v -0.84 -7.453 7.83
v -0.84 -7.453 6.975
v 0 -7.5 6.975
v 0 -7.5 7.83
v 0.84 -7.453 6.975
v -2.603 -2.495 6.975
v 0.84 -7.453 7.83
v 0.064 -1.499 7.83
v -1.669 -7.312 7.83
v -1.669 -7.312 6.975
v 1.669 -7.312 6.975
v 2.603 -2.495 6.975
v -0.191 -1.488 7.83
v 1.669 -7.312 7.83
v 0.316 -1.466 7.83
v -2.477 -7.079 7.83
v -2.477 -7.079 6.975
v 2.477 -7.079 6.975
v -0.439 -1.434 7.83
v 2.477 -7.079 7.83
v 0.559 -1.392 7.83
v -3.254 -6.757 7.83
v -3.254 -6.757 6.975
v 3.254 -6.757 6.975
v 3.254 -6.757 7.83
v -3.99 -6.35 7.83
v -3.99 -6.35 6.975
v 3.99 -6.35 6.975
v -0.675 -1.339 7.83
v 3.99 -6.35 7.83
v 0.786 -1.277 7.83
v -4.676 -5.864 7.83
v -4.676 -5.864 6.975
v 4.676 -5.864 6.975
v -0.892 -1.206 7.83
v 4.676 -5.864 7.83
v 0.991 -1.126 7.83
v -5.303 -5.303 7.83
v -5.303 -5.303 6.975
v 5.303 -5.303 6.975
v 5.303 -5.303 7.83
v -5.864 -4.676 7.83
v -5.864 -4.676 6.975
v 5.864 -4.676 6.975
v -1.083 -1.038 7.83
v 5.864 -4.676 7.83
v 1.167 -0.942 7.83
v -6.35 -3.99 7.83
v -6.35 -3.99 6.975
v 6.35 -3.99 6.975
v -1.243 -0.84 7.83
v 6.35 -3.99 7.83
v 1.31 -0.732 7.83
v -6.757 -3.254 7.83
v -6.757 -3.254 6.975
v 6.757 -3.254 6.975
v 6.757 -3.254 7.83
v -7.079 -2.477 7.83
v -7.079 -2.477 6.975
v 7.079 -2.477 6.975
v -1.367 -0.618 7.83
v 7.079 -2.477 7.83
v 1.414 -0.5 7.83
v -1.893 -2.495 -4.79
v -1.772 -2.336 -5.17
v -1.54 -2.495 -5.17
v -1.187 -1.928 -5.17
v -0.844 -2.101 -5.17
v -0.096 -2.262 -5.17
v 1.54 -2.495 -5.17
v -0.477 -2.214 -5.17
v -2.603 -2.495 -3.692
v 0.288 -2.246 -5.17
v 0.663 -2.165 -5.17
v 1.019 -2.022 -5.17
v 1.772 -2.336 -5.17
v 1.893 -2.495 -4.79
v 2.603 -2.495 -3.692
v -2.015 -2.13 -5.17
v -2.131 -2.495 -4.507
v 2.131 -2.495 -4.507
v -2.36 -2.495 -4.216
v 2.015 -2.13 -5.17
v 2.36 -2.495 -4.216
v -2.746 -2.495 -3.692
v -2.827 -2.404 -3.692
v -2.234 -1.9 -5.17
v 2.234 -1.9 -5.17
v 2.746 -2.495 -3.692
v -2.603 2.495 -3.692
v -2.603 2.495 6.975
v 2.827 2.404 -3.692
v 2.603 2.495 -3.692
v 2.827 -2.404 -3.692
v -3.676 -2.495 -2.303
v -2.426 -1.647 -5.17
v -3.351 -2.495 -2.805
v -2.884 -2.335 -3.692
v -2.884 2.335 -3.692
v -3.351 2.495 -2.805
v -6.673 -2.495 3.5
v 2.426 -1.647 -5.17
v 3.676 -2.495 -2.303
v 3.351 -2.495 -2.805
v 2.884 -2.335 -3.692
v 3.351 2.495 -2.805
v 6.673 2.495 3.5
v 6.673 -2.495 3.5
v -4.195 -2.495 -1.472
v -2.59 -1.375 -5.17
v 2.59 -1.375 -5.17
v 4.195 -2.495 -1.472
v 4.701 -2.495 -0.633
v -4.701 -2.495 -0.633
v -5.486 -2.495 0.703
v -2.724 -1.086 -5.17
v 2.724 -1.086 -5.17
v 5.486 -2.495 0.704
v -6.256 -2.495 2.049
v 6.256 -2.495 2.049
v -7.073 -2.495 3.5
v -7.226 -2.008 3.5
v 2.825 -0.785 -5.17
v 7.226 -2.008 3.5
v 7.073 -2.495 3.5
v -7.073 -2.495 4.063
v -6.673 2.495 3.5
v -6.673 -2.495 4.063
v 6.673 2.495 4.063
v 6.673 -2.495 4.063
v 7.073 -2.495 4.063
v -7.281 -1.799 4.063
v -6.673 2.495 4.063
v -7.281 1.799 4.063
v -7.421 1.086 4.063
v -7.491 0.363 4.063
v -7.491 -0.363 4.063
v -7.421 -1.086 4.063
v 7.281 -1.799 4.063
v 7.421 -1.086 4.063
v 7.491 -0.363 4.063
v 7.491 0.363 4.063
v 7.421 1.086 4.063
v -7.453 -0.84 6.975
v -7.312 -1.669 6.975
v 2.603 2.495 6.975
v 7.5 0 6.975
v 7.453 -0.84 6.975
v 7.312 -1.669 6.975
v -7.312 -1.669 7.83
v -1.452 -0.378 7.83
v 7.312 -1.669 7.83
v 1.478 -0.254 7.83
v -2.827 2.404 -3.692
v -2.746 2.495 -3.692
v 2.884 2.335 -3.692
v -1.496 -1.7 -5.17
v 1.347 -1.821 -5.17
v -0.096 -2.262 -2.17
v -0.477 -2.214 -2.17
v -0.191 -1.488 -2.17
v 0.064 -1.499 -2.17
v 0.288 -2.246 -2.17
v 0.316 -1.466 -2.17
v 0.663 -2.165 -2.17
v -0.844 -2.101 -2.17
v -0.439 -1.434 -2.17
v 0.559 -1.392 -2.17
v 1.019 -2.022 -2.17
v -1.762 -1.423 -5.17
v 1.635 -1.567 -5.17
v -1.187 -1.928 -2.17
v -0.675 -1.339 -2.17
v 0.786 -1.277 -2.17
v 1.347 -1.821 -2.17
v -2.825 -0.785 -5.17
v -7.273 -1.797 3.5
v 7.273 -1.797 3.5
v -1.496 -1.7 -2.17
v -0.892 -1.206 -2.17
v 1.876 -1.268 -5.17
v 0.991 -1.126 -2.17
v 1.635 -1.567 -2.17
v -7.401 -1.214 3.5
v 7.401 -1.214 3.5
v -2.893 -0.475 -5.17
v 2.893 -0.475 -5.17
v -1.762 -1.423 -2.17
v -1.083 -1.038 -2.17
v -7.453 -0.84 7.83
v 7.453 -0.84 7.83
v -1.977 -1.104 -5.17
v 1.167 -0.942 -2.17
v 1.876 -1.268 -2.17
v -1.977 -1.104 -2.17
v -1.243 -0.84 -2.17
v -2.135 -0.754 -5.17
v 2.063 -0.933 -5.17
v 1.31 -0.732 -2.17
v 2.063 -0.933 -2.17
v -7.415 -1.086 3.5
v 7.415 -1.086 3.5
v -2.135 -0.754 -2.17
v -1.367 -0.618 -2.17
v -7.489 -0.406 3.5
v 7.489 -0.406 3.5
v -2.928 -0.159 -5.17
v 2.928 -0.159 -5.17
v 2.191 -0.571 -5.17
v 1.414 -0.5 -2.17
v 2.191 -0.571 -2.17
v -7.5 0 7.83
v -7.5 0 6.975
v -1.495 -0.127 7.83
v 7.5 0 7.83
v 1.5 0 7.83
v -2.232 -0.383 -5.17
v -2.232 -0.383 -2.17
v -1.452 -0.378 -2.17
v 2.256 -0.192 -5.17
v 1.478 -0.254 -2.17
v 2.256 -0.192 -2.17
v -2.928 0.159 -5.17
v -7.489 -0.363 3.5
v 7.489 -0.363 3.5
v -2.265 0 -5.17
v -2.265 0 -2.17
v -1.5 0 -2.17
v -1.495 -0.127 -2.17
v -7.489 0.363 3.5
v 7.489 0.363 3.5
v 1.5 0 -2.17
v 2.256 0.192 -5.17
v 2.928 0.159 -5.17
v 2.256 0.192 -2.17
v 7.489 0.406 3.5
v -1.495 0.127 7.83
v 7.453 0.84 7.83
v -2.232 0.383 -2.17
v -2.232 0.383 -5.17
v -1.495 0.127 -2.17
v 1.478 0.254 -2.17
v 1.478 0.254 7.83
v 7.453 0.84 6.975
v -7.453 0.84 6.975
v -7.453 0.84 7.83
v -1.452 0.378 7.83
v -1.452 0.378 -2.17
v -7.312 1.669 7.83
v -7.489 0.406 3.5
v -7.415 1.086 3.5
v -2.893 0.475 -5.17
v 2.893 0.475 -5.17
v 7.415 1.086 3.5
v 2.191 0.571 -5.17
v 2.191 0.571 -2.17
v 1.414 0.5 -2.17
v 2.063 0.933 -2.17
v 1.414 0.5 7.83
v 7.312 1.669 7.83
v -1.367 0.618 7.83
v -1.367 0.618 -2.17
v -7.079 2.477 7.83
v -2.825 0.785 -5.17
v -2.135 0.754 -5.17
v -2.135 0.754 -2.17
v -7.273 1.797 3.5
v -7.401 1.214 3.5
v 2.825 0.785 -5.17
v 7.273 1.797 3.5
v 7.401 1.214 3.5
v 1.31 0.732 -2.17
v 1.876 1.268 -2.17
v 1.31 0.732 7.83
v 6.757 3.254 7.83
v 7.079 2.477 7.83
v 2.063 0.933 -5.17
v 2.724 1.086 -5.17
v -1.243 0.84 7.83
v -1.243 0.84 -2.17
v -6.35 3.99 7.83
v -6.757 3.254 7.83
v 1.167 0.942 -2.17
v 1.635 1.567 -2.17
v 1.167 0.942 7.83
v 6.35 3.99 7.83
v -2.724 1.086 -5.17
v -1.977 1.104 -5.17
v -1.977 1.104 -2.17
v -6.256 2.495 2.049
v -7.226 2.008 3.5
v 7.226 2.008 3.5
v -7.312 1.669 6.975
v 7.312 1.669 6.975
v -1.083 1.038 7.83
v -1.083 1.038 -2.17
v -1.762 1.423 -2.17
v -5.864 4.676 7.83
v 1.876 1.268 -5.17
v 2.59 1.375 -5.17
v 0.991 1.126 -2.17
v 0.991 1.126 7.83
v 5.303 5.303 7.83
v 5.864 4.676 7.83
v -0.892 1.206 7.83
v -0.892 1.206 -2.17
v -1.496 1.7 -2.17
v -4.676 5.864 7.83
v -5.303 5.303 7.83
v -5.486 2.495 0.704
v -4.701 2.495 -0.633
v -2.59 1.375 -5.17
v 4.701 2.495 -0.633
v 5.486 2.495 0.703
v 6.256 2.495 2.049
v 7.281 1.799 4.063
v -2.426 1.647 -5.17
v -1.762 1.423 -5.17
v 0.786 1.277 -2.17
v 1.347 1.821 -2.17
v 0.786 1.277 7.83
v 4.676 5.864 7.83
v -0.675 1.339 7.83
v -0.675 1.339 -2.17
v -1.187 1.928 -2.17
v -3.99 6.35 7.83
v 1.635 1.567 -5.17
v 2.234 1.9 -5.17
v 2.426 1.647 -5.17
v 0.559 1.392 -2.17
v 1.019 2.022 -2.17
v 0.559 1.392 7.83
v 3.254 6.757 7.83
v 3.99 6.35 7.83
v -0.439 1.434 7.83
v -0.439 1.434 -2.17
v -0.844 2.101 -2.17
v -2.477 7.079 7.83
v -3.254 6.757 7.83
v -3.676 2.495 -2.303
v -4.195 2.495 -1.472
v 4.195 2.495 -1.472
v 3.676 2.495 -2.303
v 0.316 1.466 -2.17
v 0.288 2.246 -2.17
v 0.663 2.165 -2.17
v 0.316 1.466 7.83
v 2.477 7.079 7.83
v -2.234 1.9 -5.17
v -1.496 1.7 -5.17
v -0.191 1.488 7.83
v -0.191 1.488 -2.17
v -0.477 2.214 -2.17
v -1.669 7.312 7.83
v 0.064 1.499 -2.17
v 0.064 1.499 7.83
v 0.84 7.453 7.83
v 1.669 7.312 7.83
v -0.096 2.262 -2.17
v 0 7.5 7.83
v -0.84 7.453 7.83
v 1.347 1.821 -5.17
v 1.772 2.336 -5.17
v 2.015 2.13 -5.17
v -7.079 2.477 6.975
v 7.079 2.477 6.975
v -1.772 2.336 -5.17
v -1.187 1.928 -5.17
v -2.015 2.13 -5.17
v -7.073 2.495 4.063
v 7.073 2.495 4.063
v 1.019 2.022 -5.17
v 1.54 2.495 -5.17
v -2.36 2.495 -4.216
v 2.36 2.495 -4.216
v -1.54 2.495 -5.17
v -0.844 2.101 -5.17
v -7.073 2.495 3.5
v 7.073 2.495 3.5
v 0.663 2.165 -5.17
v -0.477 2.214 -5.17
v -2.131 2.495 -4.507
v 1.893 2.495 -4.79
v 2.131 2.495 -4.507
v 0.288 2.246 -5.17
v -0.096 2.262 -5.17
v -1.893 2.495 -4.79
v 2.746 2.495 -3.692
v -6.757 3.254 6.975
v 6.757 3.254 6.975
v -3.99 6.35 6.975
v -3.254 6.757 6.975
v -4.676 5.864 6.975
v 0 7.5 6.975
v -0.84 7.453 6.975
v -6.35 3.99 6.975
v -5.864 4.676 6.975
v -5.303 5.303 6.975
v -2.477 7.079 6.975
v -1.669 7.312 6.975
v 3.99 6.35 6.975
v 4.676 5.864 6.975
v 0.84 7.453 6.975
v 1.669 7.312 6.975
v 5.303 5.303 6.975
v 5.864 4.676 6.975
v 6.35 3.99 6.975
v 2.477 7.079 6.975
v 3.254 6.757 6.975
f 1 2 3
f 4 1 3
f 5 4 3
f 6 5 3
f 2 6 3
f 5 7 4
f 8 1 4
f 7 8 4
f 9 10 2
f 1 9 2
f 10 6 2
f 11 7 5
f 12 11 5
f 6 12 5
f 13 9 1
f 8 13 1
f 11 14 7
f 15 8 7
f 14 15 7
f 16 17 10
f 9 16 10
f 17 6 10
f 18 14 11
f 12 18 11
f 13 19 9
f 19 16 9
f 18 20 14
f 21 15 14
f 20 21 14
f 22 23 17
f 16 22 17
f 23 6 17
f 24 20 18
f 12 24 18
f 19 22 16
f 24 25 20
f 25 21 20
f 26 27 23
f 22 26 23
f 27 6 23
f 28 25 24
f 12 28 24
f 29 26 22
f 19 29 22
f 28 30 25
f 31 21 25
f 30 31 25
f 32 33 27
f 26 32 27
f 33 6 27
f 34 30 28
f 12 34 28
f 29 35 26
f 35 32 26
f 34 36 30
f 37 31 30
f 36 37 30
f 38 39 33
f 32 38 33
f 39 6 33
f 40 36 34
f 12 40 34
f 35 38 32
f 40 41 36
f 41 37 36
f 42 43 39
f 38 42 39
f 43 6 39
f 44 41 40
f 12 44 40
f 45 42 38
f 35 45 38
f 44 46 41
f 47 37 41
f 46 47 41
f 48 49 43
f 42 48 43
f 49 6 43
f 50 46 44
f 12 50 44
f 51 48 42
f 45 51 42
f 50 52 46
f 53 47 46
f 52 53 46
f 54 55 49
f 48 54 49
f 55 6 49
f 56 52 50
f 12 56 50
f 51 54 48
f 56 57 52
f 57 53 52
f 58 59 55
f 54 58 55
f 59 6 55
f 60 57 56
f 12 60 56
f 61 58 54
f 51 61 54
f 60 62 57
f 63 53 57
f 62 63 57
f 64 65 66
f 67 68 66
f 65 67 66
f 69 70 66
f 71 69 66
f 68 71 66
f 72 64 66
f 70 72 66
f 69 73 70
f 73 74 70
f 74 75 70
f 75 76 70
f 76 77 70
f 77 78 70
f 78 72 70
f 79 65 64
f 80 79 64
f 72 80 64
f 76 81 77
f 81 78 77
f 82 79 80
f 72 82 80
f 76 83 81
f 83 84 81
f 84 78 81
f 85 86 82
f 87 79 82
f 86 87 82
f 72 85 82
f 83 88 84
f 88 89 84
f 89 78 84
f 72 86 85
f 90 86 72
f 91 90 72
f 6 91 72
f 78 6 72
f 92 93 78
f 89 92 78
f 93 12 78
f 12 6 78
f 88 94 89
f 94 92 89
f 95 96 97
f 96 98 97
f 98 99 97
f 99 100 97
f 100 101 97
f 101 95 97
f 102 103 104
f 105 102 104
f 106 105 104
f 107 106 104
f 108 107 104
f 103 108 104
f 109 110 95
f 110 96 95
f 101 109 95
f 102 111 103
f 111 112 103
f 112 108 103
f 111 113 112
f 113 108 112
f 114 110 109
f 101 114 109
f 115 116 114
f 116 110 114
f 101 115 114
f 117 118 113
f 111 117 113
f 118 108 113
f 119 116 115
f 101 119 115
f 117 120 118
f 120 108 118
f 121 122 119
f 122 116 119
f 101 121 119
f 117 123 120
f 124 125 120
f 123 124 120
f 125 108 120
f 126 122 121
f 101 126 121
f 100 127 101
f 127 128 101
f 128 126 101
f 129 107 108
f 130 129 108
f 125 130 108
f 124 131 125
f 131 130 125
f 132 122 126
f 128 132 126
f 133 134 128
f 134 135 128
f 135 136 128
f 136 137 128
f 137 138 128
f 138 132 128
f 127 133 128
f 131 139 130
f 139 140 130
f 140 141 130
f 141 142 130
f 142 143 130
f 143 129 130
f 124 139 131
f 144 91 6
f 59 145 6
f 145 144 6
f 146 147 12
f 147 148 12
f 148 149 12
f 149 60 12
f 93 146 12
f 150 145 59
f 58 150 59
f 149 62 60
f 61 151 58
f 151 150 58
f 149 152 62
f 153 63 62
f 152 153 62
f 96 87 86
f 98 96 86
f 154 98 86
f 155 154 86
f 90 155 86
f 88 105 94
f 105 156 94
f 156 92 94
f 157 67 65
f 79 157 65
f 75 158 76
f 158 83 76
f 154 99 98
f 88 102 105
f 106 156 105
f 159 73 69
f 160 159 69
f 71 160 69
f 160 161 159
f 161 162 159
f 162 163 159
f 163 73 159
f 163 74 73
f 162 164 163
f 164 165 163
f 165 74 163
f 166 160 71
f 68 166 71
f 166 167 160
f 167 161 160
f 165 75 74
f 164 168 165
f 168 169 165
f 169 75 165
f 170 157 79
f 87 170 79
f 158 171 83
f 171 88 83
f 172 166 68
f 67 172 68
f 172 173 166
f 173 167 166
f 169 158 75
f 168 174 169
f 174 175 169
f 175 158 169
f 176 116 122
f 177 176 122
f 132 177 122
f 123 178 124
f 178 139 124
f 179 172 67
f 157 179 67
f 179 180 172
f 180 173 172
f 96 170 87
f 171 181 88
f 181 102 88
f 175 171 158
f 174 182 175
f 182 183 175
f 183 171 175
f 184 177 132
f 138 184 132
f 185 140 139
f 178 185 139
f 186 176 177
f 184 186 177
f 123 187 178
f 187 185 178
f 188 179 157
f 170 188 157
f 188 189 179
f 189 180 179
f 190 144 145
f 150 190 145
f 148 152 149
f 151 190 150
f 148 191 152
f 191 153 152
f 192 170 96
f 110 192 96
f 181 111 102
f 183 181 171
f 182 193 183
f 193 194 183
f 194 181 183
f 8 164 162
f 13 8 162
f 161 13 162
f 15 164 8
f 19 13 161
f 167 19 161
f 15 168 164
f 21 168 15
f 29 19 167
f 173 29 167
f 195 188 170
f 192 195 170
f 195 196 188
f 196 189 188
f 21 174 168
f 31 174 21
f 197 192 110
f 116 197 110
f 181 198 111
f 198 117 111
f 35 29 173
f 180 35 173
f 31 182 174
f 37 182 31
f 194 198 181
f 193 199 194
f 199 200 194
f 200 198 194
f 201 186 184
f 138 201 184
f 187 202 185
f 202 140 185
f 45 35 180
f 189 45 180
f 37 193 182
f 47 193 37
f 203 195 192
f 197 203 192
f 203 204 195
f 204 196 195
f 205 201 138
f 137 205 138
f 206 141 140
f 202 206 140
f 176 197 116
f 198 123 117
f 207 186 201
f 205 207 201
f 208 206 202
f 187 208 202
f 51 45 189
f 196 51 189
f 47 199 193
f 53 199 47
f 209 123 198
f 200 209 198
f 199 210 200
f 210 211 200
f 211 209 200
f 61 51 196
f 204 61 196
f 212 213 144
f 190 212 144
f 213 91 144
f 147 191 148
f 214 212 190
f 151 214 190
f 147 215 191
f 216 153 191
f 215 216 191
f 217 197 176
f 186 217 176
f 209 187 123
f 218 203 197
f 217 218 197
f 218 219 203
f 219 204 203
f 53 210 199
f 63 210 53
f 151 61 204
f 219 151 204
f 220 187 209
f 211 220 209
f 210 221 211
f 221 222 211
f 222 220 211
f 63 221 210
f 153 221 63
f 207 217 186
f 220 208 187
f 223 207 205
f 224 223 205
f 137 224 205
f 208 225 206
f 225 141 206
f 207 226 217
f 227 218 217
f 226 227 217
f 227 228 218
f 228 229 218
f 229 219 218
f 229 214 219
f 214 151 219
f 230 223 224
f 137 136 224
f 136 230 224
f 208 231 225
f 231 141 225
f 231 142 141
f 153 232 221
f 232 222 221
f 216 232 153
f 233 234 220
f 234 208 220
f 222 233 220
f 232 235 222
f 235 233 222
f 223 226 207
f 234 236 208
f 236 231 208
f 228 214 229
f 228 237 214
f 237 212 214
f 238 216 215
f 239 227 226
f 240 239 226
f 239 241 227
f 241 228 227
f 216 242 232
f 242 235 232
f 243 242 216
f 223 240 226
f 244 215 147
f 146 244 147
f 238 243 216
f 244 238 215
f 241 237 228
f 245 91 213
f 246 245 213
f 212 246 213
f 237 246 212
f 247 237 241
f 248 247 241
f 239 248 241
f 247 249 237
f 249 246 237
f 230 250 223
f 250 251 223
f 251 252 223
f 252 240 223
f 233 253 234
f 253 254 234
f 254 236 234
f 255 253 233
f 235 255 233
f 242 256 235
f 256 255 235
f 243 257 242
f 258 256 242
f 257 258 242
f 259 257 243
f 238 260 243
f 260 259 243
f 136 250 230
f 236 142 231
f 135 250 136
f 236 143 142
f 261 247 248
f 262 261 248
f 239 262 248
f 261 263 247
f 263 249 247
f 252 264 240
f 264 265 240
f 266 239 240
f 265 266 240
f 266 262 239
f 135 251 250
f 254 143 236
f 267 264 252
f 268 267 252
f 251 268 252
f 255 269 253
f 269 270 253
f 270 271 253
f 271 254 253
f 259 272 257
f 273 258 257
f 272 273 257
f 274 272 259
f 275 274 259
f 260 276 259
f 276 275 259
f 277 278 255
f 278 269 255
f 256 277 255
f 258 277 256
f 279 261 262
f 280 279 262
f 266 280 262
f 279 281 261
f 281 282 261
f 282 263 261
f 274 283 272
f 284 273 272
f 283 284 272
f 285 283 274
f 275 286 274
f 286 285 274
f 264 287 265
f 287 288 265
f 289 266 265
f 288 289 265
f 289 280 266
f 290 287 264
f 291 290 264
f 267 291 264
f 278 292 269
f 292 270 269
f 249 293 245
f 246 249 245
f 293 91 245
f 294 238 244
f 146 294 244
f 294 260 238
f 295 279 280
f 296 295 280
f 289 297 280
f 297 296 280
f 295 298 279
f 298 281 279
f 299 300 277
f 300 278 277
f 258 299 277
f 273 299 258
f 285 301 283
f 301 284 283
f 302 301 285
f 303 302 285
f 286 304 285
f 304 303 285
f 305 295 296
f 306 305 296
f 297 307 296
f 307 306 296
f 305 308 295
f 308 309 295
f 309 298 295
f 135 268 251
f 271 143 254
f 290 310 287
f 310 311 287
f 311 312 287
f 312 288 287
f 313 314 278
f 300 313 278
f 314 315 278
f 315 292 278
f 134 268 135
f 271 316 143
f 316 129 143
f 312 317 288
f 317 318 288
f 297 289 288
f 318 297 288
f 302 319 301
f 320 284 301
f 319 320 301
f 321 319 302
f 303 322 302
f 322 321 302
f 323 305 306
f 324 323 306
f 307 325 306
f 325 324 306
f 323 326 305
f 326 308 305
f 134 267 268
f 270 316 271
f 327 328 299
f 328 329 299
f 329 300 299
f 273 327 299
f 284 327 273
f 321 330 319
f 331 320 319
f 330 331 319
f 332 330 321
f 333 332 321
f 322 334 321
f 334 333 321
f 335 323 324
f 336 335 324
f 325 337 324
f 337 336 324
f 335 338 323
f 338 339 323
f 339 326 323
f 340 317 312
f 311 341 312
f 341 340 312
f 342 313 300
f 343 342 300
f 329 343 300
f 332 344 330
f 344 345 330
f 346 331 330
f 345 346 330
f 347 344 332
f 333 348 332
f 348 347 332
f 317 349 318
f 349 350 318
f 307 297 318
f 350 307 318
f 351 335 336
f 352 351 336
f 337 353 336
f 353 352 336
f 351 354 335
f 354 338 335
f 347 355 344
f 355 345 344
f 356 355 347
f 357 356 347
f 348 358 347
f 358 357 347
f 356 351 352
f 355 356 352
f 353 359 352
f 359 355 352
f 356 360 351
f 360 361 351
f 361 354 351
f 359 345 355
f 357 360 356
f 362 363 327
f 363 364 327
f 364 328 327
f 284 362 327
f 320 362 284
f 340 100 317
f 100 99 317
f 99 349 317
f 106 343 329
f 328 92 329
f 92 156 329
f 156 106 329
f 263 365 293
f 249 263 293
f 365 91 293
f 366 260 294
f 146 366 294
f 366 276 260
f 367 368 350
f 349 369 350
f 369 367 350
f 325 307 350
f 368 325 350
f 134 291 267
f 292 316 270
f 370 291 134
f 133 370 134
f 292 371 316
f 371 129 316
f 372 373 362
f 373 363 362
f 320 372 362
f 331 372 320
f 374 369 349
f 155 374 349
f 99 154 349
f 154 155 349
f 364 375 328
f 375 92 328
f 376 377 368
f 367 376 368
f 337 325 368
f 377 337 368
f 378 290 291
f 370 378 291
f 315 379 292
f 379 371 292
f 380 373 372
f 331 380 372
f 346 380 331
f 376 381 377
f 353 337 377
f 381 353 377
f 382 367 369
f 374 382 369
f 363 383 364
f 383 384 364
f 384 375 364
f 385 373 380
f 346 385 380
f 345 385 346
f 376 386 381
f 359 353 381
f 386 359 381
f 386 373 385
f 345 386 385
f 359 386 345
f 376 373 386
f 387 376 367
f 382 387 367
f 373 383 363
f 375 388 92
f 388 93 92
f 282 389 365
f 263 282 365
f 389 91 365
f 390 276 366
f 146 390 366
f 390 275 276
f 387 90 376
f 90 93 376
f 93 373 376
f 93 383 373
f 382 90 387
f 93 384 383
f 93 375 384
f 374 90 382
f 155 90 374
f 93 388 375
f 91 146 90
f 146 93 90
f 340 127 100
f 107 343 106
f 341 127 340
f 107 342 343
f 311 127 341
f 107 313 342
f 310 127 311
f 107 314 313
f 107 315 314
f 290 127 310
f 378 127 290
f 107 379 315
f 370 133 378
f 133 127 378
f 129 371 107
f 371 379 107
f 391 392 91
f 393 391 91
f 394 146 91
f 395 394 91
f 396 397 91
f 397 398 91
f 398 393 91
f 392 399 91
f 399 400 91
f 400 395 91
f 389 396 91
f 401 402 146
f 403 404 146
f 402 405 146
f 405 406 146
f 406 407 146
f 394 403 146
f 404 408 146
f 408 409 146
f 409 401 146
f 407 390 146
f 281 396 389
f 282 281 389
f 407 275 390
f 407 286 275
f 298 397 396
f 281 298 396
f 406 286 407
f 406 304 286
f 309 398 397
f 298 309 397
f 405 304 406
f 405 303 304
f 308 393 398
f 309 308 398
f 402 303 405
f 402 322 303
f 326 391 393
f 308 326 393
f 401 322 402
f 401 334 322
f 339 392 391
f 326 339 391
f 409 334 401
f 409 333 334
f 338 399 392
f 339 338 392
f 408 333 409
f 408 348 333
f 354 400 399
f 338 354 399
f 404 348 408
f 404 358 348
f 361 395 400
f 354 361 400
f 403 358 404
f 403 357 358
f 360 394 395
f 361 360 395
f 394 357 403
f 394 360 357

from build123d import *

# Parameters (mm, degrees)
CUT_EXTRUDE1_DEPTH      = 8.5
CUT_EXTRUDE1_DEPTH_BACK = 8.5
CUT_EXTRUDE3_DEPTH      = 8.5
CUT_EXTRUDE3_DEPTH_BACK = 8.5
CUT_EXTRUDE4_DEPTH      = 8.5
CUT_EXTRUDE4_DEPTH_BACK = 8.5
SKETCH6_R               = 1.5
CUT_EXTRUDE5_DEPTH      = 8.830238334
CUT_EXTRUDE5_DEPTH_BACK = 6.169761666
SKETCH8_R               = 2.264503928
CUT_EXTRUDE6_DEPTH      = 3


with BuildPart() as part:
    # Sketch2 → Revolve1 (revolve)
    with BuildSketch(Plane(origin=(0, 0, 0), x_dir=(1, 0, 0), z_dir=(0, 1, 0))):
        Polygon((0, 5.169761666), (-2.93214923, 5.169761666), (-7.5, -3.499678513), (-7.5, -7.830238334), (0, -7.830238334), align=None)
    revolve(axis=Axis((0, 0, 7.830238334), (0, 0, -1)))

    # Sketch3 → Cut-Extrude1 (cut, two sides)
    with BuildSketch(Plane(origin=(0, 0, 0), x_dir=(1, 0, 0), z_dir=(0, 1, 0))) as cut_extrude1_sk:
        Polygon((-7.696381126, -4.06313473), (-4.427121887, -4.06313473), (-4.427121887, -6.974818739), (-8.445586368, -6.974818739), align=None)
        Polygon((8.445586368, -6.974818739), (7.696381126, -4.06313473), (4.427121887, -4.06313473), (4.427121887, -6.974818739), align=None)
    extrude(amount=CUT_EXTRUDE1_DEPTH, mode=Mode.SUBTRACT)
    extrude(cut_extrude1_sk.sketch, amount=-CUT_EXTRUDE1_DEPTH_BACK, mode=Mode.SUBTRACT)

    # Sketch4 → Cut-Extrude3 (cut, two sides)
    with BuildSketch(Plane(origin=(0, 0, 0), x_dir=(1, 0, 0), z_dir=(0, 1, 0))) as cut_extrude3_sk:
        Polygon((-6.673039702, -4.06313473), (-6.673039702, -3.499678513), (-2.88374221, 3.692125592), (-2.603089552, 3.692125592), (-2.603089552, -4.06313473), (-2.603089552, -6.974818739), (-6.673039702, -6.974818739), align=None)
        Polygon((2.603089552, -6.974818739), (2.603089552, -4.06313473), (2.603089552, 3.692125592), (2.88374221, 3.692125592), (6.673039702, -3.499678513), (6.673039702, -4.06313473), (6.673039702, -6.974818739), align=None)
    extrude(amount=CUT_EXTRUDE3_DEPTH, mode=Mode.SUBTRACT)
    extrude(cut_extrude3_sk.sketch, amount=-CUT_EXTRUDE3_DEPTH_BACK, mode=Mode.SUBTRACT)

    # Sketch5 → Cut-Extrude4 (cut, two sides)
    with BuildSketch(Plane(origin=(0, 0, 0), x_dir=(0, 0, -1), z_dir=(1, 0, 0))) as cut_extrude4_sk:
        Polygon((-6.974818739, 2.495248244), (8.7529713, 2.495248244), (-4.227454646, 9.024441475), (-6.974818739, 9.024441475), align=None)
        Polygon((-6.974818739, -9.024441475), (-6.974818739, -2.495248244), (8.7529713, -2.495248244), (-4.227454646, -9.024441475), align=None)
    extrude(amount=CUT_EXTRUDE4_DEPTH, mode=Mode.SUBTRACT)
    extrude(cut_extrude4_sk.sketch, amount=-CUT_EXTRUDE4_DEPTH_BACK, mode=Mode.SUBTRACT)

    # Sketch6 → Cut-Extrude5 (cut, two sides)
    with BuildSketch(Plane.XY) as cut_extrude5_sk:
        Circle(SKETCH6_R)
    extrude(amount=CUT_EXTRUDE5_DEPTH, mode=Mode.SUBTRACT)
    extrude(cut_extrude5_sk.sketch, amount=-CUT_EXTRUDE5_DEPTH_BACK, mode=Mode.SUBTRACT)

    # Sketch8 → Cut-Extrude6 (cut)
    with BuildSketch(Plane(origin=(0, 0, -5.169761666), x_dir=(-1, 0, 0), z_dir=(0, 0, -1))):
        Circle(SKETCH8_R)
    extrude(amount=-CUT_EXTRUDE6_DEPTH, mode=Mode.SUBTRACT)


solid = part.part
